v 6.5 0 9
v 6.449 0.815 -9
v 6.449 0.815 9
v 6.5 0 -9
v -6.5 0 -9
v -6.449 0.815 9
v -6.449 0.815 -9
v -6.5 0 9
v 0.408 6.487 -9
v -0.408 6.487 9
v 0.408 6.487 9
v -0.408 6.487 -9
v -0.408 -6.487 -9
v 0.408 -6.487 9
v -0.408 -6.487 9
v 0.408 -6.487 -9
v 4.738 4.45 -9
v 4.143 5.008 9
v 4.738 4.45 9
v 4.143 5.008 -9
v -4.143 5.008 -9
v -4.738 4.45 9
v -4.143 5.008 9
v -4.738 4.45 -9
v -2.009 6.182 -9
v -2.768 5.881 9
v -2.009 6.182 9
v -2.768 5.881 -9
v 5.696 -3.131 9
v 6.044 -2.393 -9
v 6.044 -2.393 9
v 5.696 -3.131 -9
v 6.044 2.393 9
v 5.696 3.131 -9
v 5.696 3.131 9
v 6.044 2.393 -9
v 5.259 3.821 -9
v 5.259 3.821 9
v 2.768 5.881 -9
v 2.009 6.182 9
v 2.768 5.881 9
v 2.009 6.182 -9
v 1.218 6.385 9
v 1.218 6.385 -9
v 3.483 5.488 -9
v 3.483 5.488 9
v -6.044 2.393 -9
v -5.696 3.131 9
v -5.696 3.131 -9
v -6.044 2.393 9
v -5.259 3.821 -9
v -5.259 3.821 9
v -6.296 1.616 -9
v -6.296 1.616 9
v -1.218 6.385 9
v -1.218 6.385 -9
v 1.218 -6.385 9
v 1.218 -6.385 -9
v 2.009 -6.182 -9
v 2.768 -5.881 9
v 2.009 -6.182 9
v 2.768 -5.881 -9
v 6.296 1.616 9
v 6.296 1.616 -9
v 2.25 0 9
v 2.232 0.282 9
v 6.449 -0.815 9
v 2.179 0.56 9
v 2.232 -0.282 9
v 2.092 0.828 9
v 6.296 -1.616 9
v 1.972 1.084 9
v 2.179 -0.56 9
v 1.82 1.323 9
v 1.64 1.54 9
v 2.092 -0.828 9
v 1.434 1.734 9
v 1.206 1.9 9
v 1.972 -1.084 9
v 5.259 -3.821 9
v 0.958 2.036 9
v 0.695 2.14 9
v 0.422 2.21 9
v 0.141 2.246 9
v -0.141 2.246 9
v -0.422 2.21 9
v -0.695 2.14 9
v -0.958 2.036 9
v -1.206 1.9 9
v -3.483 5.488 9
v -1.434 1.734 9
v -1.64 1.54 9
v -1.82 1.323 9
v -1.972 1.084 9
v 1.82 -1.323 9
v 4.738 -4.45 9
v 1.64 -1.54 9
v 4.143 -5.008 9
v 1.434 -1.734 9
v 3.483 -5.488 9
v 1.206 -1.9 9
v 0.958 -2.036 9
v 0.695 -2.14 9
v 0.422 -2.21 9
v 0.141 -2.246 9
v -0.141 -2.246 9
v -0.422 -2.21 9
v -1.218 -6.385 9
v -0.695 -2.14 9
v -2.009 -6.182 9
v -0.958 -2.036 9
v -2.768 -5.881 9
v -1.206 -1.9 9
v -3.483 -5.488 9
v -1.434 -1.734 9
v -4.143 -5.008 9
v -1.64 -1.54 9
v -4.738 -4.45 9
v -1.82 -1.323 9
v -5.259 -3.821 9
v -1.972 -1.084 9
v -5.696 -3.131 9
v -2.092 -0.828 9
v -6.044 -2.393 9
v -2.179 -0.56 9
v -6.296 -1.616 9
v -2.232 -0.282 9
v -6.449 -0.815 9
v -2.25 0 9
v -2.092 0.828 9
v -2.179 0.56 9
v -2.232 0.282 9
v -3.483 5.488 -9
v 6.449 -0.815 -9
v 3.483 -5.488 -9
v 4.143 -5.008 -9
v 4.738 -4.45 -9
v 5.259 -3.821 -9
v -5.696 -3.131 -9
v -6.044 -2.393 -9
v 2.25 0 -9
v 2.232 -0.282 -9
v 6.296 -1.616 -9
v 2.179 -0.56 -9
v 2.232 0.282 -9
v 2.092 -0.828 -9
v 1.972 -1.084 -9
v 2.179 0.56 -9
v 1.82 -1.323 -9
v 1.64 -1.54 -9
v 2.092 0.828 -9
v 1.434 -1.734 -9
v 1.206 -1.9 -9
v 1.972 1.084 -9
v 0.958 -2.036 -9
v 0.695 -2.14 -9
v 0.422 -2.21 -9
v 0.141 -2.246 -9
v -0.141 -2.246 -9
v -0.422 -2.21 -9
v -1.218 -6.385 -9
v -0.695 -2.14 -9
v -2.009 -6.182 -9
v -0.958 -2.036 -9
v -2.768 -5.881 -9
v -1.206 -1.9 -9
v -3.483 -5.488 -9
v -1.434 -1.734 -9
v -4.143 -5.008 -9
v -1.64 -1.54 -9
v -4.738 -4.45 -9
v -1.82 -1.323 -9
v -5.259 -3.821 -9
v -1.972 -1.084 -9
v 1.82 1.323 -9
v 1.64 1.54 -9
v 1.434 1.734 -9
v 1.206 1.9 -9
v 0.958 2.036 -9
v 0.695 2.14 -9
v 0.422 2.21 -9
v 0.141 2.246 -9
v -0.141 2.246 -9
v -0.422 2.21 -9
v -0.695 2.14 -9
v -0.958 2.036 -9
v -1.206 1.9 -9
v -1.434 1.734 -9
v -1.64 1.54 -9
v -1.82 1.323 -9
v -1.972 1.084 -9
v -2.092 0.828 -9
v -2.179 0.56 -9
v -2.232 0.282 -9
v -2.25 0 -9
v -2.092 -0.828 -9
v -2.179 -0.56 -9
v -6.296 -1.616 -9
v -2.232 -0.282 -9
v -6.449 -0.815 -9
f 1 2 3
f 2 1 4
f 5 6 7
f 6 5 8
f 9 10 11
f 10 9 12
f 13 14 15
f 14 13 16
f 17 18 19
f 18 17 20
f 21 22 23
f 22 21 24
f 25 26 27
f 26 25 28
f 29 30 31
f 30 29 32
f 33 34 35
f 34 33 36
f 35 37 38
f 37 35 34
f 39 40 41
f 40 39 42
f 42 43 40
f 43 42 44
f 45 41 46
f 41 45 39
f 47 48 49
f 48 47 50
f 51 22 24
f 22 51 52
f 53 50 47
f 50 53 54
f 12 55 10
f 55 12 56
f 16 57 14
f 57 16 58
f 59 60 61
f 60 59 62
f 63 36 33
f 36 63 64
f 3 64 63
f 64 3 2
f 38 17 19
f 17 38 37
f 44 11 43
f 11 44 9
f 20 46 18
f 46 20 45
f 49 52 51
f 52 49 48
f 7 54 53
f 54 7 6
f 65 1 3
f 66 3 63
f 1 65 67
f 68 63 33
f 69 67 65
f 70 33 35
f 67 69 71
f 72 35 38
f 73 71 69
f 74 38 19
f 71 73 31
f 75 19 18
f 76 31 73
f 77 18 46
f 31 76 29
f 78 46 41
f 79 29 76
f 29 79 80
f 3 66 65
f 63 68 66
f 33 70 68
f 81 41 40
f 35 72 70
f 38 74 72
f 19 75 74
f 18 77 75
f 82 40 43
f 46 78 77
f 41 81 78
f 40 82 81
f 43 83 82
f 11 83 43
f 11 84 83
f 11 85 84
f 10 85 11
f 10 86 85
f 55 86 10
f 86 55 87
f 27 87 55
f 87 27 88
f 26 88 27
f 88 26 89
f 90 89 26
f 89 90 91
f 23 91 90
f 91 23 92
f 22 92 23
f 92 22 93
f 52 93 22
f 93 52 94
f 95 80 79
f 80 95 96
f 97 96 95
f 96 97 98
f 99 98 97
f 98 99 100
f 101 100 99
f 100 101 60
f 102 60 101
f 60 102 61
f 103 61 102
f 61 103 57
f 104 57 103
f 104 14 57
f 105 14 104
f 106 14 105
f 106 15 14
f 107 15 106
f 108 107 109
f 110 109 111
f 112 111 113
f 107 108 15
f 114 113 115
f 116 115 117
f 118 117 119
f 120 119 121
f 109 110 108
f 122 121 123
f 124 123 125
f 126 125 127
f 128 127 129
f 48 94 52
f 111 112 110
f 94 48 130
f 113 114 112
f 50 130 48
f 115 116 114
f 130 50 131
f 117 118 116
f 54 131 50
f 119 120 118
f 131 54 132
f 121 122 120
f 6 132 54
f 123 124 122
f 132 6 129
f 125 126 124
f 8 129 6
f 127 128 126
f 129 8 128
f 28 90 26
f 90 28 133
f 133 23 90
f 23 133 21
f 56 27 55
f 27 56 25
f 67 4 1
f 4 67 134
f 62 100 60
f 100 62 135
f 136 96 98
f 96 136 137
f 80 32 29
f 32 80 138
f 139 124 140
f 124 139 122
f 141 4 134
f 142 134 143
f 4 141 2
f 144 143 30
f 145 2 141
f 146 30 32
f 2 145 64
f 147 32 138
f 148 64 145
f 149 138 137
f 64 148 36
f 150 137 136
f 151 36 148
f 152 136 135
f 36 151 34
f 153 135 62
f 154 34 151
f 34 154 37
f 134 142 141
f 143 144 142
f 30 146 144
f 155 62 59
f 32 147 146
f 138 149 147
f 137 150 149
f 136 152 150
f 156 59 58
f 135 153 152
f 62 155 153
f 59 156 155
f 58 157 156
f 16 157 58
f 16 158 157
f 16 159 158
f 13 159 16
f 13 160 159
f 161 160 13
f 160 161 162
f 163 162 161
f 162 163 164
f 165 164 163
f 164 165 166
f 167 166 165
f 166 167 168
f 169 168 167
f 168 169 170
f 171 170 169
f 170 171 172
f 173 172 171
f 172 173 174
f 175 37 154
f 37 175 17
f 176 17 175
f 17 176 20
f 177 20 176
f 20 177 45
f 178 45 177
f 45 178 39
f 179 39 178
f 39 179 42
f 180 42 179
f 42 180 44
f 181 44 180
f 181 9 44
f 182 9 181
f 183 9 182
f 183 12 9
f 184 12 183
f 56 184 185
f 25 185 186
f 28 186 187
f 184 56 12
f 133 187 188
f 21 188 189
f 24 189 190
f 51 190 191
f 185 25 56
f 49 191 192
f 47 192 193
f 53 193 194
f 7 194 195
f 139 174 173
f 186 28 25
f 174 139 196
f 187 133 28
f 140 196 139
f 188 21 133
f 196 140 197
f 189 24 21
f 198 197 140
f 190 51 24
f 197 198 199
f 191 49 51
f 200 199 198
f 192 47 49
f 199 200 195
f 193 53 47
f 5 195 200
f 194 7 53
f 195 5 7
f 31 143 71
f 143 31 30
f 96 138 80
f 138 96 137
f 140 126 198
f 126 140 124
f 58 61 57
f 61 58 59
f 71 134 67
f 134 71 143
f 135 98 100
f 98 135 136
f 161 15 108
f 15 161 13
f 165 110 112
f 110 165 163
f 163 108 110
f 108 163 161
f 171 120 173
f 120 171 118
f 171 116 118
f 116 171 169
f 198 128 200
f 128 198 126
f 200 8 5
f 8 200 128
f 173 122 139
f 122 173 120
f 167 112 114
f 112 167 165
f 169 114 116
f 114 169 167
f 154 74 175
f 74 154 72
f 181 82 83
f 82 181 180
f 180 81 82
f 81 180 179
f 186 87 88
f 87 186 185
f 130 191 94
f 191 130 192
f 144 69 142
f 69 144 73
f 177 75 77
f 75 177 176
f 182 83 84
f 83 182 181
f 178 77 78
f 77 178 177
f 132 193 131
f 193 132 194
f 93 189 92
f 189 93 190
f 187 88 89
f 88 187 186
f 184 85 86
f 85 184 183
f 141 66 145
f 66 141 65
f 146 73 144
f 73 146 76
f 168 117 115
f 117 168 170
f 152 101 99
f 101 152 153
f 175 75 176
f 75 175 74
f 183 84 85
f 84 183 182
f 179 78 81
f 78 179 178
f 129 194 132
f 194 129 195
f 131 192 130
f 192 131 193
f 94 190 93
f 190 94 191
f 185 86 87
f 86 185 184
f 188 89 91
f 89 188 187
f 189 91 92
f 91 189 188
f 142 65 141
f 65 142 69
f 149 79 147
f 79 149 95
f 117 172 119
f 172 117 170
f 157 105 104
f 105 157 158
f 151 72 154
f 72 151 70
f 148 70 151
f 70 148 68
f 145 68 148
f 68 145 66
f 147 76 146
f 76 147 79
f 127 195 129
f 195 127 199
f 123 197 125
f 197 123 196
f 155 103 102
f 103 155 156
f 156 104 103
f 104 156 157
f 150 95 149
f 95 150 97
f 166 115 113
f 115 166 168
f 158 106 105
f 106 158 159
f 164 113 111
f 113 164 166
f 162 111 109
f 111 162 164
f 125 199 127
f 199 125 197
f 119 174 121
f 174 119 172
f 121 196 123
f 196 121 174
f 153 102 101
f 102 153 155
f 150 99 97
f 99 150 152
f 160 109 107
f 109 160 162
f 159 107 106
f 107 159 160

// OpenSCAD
$fn = 50;


difference() {
	union() {
		translate(v = [0, 0, -9.0000000000]) {
			cylinder(h = 18, r = 6.5000000000);
		}
	}
	union() {
		translate(v = [0, 0, -100.0000000000]) {
			cylinder(h = 200, r = 2.2500000000);
		}
	}
}
